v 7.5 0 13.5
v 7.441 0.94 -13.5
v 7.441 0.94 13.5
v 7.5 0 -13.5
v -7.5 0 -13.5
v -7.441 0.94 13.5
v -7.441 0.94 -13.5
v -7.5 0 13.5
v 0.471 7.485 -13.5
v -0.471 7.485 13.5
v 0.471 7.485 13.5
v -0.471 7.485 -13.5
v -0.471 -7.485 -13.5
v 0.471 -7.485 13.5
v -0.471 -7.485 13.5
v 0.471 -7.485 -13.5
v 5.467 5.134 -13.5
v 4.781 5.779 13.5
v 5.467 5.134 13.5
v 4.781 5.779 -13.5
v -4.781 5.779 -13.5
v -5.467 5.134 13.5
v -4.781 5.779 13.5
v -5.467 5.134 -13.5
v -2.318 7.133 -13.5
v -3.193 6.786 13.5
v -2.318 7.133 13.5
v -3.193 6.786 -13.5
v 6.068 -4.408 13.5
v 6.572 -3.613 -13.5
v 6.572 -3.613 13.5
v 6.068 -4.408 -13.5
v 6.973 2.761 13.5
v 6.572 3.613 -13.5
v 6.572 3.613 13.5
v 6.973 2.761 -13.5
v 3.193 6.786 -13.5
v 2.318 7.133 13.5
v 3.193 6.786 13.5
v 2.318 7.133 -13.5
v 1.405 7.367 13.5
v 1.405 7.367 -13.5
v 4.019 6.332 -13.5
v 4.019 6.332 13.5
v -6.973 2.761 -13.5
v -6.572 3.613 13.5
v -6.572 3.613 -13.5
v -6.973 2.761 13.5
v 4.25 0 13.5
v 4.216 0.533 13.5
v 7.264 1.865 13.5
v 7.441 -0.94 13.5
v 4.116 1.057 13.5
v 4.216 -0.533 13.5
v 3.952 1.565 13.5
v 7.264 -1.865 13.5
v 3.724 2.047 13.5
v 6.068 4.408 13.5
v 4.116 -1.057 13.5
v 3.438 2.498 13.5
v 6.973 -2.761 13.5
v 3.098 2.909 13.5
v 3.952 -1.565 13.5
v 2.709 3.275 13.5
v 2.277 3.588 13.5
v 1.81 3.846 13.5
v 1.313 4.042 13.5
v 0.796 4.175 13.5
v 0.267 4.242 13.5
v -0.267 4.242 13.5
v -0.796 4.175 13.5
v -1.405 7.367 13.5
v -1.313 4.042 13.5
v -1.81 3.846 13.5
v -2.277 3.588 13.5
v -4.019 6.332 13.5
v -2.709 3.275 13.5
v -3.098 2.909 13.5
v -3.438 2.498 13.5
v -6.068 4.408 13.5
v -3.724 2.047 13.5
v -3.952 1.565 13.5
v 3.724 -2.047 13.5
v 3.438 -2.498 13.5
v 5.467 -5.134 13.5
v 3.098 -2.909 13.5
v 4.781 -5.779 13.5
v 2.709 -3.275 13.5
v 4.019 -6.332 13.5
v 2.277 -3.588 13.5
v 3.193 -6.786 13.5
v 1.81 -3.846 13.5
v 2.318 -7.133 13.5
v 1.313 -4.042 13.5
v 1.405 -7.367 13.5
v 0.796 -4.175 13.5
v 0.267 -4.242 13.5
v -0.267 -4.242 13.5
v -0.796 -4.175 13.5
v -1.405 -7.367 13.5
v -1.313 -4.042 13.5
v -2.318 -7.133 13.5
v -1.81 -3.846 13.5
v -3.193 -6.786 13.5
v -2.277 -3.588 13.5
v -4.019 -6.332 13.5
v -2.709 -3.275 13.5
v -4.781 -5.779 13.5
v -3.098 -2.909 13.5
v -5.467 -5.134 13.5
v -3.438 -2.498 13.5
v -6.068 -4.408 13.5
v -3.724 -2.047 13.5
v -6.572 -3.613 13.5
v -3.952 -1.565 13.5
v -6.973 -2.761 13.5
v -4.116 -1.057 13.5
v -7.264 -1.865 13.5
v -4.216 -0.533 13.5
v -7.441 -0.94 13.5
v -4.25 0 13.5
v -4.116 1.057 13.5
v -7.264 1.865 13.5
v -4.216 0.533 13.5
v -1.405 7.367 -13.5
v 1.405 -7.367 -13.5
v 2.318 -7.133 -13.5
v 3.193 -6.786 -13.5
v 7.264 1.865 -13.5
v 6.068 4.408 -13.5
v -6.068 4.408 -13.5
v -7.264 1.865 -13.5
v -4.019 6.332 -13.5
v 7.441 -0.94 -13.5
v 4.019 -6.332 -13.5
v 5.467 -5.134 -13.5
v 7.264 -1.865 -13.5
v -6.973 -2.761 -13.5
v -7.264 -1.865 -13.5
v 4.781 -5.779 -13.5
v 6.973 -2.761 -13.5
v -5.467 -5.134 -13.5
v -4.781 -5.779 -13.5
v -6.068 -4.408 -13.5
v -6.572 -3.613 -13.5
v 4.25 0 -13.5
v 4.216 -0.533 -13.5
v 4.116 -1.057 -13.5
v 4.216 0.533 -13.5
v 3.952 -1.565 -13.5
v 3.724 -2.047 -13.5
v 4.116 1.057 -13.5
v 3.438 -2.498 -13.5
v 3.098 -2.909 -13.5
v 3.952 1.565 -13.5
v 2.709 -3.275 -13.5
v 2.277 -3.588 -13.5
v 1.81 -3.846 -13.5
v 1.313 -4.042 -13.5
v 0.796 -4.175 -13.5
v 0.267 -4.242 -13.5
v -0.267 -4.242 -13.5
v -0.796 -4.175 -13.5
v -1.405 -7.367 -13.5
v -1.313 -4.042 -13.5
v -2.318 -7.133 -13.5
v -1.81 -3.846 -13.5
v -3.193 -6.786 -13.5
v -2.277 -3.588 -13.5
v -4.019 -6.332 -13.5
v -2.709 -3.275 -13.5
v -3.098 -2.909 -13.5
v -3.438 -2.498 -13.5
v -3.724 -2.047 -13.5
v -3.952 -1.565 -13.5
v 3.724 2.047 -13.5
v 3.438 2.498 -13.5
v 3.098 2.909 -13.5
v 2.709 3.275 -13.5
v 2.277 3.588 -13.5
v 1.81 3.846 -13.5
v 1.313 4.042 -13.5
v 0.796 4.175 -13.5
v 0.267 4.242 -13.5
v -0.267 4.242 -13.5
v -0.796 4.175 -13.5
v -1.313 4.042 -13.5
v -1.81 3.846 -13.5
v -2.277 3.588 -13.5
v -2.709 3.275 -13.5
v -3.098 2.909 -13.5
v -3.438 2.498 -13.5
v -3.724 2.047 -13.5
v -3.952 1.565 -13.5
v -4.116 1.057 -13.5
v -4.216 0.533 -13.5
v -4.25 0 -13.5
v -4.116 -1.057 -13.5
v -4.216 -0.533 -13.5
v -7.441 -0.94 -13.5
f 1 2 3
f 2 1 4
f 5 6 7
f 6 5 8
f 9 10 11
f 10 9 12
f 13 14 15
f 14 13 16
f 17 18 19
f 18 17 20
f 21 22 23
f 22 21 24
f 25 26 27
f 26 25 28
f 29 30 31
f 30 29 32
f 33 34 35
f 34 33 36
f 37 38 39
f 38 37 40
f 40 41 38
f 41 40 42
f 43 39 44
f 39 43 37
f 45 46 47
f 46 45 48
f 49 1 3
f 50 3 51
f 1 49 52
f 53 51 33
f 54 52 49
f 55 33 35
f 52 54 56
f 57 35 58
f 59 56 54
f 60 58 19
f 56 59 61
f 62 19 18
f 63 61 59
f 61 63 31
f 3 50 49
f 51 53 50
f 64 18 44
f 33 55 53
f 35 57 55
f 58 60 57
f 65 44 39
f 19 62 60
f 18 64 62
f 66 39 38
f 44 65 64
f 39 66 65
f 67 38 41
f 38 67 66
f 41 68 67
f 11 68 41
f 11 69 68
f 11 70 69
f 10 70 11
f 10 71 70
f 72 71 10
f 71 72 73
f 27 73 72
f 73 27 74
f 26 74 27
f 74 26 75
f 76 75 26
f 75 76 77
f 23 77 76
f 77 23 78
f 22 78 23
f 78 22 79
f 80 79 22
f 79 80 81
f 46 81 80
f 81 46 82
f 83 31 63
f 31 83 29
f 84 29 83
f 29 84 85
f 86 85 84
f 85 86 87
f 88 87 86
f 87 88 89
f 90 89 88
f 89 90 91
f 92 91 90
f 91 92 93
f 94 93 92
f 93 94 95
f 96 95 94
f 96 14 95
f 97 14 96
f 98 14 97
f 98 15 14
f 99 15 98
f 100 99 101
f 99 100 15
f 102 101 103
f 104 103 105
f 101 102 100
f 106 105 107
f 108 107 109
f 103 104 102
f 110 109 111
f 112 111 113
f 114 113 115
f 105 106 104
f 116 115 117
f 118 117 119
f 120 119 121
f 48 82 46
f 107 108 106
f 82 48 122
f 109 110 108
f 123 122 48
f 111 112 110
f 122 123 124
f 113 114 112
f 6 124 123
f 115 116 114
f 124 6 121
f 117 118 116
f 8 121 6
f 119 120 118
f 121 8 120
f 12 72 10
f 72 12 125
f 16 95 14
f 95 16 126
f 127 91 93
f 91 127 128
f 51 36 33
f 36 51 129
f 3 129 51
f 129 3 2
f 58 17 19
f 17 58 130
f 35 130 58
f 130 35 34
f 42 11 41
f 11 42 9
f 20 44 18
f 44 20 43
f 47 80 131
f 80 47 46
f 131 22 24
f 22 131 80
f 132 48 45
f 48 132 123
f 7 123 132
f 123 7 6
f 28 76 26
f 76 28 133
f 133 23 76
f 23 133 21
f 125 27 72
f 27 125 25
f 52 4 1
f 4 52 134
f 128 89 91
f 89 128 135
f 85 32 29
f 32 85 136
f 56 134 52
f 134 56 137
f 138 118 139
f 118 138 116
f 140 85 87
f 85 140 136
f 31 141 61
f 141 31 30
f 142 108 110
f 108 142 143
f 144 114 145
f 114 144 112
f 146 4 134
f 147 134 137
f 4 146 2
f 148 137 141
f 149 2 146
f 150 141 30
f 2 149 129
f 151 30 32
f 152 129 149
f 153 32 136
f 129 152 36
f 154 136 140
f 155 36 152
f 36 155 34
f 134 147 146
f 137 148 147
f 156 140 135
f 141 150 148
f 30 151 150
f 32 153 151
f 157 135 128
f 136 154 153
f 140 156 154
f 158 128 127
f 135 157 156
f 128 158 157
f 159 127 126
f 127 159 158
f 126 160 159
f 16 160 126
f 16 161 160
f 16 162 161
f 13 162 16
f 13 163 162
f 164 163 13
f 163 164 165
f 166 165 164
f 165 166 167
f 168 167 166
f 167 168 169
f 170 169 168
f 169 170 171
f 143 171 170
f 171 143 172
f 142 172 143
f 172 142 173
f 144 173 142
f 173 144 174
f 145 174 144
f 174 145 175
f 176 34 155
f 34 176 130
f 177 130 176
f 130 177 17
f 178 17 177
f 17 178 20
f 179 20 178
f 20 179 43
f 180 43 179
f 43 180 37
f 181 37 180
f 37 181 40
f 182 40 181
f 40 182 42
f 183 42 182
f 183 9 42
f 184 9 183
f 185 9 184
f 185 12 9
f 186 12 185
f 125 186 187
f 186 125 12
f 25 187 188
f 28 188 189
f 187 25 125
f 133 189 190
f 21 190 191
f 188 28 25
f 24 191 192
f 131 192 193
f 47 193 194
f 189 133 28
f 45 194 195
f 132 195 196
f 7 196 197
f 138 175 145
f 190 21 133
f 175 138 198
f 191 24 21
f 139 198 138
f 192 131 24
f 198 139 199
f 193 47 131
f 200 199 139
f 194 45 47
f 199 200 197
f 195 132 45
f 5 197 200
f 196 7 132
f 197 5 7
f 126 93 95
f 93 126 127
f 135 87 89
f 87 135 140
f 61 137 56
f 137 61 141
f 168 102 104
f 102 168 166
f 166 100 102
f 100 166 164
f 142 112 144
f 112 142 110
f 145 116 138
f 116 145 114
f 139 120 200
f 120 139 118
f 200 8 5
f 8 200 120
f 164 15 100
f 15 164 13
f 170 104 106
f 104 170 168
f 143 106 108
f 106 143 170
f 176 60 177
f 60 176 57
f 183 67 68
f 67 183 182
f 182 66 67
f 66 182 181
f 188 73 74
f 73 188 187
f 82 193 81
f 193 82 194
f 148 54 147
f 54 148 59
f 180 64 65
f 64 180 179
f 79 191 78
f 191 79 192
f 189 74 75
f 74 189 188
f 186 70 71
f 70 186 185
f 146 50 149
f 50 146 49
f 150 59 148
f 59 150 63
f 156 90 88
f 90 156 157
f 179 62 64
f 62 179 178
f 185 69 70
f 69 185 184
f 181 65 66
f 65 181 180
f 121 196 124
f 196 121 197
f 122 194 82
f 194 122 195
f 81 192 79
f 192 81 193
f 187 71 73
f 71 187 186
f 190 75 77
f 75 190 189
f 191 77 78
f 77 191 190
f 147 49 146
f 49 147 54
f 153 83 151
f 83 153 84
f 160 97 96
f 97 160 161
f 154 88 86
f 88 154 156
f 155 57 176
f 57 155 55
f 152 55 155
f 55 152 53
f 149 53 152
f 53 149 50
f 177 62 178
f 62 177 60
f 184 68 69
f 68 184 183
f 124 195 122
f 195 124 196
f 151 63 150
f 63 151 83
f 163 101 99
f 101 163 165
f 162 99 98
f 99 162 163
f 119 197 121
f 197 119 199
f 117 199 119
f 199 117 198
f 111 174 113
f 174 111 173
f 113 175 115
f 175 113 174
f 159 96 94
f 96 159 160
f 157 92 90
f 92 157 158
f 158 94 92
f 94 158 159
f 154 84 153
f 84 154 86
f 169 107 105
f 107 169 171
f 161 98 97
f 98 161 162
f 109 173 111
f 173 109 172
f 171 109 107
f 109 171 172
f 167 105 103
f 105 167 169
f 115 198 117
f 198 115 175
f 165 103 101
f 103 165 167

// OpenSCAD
$fn = 50;


difference() {
	union() {
		translate(v = [0, 0, -13.5000000000]) {
			cylinder(h = 27, r = 7.5000000000);
		}
	}
	union() {
		translate(v = [0, 0, -100.0000000000]) {
			cylinder(h = 200, r = 4.2500000000);
		}
	}
}
